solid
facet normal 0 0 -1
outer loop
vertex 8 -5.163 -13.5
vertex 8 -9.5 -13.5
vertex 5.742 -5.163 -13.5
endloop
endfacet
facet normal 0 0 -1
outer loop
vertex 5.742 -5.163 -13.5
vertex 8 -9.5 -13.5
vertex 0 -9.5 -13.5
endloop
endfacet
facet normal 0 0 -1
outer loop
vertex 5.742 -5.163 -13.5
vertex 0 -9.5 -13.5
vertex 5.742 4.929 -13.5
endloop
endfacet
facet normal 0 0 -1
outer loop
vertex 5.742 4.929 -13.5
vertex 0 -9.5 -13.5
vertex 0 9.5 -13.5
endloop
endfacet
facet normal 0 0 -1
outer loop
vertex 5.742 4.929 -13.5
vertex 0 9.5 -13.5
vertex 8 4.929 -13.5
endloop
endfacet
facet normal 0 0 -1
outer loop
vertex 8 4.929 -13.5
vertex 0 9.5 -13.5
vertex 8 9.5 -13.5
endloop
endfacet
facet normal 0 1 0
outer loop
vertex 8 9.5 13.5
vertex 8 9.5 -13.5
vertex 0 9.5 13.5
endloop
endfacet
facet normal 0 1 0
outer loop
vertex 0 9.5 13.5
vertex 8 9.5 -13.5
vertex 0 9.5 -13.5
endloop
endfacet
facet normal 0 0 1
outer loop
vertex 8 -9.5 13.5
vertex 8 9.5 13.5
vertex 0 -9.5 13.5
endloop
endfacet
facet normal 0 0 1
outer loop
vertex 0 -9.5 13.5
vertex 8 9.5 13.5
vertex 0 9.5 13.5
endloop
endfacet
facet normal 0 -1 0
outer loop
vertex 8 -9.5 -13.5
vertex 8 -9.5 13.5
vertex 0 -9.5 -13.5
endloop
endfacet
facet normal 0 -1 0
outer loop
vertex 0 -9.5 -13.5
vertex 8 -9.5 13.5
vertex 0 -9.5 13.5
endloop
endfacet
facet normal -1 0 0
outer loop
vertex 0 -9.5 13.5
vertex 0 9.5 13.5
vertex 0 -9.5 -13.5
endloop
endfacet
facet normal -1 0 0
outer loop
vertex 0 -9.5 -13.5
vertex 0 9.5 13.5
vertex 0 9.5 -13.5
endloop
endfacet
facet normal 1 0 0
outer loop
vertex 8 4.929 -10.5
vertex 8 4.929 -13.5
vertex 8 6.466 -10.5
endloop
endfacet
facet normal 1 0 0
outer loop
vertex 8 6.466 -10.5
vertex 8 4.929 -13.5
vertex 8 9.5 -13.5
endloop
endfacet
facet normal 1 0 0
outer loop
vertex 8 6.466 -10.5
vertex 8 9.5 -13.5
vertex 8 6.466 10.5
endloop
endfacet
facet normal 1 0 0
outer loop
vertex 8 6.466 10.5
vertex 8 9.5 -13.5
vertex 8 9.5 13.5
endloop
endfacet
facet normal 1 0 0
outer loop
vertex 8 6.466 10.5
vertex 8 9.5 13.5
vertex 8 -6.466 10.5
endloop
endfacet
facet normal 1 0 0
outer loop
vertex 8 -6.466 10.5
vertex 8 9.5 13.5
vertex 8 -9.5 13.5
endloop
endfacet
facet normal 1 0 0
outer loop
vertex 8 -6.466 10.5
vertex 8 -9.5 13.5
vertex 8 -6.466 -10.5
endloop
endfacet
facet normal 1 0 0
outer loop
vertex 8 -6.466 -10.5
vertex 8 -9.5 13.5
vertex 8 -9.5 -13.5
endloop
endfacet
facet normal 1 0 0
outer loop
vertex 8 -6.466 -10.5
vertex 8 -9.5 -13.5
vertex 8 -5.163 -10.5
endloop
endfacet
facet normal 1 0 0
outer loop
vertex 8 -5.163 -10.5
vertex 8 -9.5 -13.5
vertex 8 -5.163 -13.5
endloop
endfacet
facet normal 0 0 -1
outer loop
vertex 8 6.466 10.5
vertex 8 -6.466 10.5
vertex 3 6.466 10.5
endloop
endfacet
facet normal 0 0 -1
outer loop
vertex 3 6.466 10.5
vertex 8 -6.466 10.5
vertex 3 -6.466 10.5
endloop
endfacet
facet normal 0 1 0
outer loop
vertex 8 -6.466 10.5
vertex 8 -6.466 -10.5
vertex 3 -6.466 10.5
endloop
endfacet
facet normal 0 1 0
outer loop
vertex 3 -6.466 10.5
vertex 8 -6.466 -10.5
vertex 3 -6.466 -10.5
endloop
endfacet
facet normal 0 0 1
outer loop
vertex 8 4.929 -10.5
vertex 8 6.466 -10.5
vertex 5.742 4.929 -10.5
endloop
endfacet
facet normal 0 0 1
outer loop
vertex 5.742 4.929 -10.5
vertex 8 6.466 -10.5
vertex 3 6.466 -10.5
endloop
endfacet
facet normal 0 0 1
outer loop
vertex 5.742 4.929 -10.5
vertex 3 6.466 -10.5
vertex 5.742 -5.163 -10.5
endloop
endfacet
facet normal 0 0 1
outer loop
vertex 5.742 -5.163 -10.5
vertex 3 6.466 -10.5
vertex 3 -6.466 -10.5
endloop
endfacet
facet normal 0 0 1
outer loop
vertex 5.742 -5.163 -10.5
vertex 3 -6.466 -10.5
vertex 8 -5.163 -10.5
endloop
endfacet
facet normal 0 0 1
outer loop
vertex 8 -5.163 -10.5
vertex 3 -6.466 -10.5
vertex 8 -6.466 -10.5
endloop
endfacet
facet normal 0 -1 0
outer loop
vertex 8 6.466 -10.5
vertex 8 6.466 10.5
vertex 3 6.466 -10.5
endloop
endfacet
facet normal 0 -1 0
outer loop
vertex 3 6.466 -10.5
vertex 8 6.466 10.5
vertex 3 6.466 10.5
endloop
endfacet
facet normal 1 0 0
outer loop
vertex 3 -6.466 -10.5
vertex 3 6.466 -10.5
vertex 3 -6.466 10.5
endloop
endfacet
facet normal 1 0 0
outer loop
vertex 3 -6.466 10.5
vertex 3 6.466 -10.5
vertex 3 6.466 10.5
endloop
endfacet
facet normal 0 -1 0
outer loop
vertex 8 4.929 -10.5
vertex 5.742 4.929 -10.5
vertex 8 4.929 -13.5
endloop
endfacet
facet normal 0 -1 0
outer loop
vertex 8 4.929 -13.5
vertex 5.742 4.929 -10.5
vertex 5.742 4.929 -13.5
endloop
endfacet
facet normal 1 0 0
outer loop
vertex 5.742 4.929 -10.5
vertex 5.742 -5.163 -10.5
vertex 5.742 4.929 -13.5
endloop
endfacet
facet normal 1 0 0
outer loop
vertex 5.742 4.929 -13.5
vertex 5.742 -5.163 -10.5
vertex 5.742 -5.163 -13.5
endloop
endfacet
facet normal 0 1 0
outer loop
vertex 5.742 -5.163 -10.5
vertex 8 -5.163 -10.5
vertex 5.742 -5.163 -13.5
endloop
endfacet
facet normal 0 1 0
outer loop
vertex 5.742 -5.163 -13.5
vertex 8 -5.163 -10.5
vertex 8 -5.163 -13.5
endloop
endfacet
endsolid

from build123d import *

# Parameters (mm, degrees)
SKETCH1_W           = 27
SKETCH1_H           = 19
BOSS_EXTRUDE1_DEPTH = 3
SKETCH2_W           = 27
SKETCH2_H           = 19
SKETCH2_W_2         = 21
SKETCH2_H_2         = 12.931843368
BOSS_EXTRUDE2_DEPTH = 5
SKETCH3_W           = 2.258281888
SKETCH3_H           = 10.091270109
CUT_EXTRUDE1_DEPTH  = 3


with BuildPart() as part:
    # Sketch1 → Boss-Extrude1 (new body)
    with BuildSketch(Plane(origin=(0, 0, 0), x_dir=(0, 0, -1), z_dir=(1, 0, 0))):
        Rectangle(SKETCH1_W, SKETCH1_H)
    extrude(amount=BOSS_EXTRUDE1_DEPTH)

    # Sketch2 → Boss-Extrude2 (add)
    with BuildSketch(Plane(origin=(3, 0, 0), x_dir=(0, 0, -1), z_dir=(1, 0, 0))):
        Rectangle(SKETCH2_W, SKETCH2_H)
        Rectangle(SKETCH2_W_2, SKETCH2_H_2, mode=Mode.SUBTRACT)
    extrude(amount=BOSS_EXTRUDE2_DEPTH)

    # Sketch3 → Cut-Extrude1 (cut)
    with BuildSketch(Plane(origin=(0, 0, -13.5), x_dir=(-1, 0, 0), z_dir=(0, 0, -1))):
        with Locations((-6.870859056, -0.117113387)):
            Rectangle(SKETCH3_W, SKETCH3_H)
    extrude(amount=-CUT_EXTRUDE1_DEPTH, mode=Mode.SUBTRACT)


solid = part.part
